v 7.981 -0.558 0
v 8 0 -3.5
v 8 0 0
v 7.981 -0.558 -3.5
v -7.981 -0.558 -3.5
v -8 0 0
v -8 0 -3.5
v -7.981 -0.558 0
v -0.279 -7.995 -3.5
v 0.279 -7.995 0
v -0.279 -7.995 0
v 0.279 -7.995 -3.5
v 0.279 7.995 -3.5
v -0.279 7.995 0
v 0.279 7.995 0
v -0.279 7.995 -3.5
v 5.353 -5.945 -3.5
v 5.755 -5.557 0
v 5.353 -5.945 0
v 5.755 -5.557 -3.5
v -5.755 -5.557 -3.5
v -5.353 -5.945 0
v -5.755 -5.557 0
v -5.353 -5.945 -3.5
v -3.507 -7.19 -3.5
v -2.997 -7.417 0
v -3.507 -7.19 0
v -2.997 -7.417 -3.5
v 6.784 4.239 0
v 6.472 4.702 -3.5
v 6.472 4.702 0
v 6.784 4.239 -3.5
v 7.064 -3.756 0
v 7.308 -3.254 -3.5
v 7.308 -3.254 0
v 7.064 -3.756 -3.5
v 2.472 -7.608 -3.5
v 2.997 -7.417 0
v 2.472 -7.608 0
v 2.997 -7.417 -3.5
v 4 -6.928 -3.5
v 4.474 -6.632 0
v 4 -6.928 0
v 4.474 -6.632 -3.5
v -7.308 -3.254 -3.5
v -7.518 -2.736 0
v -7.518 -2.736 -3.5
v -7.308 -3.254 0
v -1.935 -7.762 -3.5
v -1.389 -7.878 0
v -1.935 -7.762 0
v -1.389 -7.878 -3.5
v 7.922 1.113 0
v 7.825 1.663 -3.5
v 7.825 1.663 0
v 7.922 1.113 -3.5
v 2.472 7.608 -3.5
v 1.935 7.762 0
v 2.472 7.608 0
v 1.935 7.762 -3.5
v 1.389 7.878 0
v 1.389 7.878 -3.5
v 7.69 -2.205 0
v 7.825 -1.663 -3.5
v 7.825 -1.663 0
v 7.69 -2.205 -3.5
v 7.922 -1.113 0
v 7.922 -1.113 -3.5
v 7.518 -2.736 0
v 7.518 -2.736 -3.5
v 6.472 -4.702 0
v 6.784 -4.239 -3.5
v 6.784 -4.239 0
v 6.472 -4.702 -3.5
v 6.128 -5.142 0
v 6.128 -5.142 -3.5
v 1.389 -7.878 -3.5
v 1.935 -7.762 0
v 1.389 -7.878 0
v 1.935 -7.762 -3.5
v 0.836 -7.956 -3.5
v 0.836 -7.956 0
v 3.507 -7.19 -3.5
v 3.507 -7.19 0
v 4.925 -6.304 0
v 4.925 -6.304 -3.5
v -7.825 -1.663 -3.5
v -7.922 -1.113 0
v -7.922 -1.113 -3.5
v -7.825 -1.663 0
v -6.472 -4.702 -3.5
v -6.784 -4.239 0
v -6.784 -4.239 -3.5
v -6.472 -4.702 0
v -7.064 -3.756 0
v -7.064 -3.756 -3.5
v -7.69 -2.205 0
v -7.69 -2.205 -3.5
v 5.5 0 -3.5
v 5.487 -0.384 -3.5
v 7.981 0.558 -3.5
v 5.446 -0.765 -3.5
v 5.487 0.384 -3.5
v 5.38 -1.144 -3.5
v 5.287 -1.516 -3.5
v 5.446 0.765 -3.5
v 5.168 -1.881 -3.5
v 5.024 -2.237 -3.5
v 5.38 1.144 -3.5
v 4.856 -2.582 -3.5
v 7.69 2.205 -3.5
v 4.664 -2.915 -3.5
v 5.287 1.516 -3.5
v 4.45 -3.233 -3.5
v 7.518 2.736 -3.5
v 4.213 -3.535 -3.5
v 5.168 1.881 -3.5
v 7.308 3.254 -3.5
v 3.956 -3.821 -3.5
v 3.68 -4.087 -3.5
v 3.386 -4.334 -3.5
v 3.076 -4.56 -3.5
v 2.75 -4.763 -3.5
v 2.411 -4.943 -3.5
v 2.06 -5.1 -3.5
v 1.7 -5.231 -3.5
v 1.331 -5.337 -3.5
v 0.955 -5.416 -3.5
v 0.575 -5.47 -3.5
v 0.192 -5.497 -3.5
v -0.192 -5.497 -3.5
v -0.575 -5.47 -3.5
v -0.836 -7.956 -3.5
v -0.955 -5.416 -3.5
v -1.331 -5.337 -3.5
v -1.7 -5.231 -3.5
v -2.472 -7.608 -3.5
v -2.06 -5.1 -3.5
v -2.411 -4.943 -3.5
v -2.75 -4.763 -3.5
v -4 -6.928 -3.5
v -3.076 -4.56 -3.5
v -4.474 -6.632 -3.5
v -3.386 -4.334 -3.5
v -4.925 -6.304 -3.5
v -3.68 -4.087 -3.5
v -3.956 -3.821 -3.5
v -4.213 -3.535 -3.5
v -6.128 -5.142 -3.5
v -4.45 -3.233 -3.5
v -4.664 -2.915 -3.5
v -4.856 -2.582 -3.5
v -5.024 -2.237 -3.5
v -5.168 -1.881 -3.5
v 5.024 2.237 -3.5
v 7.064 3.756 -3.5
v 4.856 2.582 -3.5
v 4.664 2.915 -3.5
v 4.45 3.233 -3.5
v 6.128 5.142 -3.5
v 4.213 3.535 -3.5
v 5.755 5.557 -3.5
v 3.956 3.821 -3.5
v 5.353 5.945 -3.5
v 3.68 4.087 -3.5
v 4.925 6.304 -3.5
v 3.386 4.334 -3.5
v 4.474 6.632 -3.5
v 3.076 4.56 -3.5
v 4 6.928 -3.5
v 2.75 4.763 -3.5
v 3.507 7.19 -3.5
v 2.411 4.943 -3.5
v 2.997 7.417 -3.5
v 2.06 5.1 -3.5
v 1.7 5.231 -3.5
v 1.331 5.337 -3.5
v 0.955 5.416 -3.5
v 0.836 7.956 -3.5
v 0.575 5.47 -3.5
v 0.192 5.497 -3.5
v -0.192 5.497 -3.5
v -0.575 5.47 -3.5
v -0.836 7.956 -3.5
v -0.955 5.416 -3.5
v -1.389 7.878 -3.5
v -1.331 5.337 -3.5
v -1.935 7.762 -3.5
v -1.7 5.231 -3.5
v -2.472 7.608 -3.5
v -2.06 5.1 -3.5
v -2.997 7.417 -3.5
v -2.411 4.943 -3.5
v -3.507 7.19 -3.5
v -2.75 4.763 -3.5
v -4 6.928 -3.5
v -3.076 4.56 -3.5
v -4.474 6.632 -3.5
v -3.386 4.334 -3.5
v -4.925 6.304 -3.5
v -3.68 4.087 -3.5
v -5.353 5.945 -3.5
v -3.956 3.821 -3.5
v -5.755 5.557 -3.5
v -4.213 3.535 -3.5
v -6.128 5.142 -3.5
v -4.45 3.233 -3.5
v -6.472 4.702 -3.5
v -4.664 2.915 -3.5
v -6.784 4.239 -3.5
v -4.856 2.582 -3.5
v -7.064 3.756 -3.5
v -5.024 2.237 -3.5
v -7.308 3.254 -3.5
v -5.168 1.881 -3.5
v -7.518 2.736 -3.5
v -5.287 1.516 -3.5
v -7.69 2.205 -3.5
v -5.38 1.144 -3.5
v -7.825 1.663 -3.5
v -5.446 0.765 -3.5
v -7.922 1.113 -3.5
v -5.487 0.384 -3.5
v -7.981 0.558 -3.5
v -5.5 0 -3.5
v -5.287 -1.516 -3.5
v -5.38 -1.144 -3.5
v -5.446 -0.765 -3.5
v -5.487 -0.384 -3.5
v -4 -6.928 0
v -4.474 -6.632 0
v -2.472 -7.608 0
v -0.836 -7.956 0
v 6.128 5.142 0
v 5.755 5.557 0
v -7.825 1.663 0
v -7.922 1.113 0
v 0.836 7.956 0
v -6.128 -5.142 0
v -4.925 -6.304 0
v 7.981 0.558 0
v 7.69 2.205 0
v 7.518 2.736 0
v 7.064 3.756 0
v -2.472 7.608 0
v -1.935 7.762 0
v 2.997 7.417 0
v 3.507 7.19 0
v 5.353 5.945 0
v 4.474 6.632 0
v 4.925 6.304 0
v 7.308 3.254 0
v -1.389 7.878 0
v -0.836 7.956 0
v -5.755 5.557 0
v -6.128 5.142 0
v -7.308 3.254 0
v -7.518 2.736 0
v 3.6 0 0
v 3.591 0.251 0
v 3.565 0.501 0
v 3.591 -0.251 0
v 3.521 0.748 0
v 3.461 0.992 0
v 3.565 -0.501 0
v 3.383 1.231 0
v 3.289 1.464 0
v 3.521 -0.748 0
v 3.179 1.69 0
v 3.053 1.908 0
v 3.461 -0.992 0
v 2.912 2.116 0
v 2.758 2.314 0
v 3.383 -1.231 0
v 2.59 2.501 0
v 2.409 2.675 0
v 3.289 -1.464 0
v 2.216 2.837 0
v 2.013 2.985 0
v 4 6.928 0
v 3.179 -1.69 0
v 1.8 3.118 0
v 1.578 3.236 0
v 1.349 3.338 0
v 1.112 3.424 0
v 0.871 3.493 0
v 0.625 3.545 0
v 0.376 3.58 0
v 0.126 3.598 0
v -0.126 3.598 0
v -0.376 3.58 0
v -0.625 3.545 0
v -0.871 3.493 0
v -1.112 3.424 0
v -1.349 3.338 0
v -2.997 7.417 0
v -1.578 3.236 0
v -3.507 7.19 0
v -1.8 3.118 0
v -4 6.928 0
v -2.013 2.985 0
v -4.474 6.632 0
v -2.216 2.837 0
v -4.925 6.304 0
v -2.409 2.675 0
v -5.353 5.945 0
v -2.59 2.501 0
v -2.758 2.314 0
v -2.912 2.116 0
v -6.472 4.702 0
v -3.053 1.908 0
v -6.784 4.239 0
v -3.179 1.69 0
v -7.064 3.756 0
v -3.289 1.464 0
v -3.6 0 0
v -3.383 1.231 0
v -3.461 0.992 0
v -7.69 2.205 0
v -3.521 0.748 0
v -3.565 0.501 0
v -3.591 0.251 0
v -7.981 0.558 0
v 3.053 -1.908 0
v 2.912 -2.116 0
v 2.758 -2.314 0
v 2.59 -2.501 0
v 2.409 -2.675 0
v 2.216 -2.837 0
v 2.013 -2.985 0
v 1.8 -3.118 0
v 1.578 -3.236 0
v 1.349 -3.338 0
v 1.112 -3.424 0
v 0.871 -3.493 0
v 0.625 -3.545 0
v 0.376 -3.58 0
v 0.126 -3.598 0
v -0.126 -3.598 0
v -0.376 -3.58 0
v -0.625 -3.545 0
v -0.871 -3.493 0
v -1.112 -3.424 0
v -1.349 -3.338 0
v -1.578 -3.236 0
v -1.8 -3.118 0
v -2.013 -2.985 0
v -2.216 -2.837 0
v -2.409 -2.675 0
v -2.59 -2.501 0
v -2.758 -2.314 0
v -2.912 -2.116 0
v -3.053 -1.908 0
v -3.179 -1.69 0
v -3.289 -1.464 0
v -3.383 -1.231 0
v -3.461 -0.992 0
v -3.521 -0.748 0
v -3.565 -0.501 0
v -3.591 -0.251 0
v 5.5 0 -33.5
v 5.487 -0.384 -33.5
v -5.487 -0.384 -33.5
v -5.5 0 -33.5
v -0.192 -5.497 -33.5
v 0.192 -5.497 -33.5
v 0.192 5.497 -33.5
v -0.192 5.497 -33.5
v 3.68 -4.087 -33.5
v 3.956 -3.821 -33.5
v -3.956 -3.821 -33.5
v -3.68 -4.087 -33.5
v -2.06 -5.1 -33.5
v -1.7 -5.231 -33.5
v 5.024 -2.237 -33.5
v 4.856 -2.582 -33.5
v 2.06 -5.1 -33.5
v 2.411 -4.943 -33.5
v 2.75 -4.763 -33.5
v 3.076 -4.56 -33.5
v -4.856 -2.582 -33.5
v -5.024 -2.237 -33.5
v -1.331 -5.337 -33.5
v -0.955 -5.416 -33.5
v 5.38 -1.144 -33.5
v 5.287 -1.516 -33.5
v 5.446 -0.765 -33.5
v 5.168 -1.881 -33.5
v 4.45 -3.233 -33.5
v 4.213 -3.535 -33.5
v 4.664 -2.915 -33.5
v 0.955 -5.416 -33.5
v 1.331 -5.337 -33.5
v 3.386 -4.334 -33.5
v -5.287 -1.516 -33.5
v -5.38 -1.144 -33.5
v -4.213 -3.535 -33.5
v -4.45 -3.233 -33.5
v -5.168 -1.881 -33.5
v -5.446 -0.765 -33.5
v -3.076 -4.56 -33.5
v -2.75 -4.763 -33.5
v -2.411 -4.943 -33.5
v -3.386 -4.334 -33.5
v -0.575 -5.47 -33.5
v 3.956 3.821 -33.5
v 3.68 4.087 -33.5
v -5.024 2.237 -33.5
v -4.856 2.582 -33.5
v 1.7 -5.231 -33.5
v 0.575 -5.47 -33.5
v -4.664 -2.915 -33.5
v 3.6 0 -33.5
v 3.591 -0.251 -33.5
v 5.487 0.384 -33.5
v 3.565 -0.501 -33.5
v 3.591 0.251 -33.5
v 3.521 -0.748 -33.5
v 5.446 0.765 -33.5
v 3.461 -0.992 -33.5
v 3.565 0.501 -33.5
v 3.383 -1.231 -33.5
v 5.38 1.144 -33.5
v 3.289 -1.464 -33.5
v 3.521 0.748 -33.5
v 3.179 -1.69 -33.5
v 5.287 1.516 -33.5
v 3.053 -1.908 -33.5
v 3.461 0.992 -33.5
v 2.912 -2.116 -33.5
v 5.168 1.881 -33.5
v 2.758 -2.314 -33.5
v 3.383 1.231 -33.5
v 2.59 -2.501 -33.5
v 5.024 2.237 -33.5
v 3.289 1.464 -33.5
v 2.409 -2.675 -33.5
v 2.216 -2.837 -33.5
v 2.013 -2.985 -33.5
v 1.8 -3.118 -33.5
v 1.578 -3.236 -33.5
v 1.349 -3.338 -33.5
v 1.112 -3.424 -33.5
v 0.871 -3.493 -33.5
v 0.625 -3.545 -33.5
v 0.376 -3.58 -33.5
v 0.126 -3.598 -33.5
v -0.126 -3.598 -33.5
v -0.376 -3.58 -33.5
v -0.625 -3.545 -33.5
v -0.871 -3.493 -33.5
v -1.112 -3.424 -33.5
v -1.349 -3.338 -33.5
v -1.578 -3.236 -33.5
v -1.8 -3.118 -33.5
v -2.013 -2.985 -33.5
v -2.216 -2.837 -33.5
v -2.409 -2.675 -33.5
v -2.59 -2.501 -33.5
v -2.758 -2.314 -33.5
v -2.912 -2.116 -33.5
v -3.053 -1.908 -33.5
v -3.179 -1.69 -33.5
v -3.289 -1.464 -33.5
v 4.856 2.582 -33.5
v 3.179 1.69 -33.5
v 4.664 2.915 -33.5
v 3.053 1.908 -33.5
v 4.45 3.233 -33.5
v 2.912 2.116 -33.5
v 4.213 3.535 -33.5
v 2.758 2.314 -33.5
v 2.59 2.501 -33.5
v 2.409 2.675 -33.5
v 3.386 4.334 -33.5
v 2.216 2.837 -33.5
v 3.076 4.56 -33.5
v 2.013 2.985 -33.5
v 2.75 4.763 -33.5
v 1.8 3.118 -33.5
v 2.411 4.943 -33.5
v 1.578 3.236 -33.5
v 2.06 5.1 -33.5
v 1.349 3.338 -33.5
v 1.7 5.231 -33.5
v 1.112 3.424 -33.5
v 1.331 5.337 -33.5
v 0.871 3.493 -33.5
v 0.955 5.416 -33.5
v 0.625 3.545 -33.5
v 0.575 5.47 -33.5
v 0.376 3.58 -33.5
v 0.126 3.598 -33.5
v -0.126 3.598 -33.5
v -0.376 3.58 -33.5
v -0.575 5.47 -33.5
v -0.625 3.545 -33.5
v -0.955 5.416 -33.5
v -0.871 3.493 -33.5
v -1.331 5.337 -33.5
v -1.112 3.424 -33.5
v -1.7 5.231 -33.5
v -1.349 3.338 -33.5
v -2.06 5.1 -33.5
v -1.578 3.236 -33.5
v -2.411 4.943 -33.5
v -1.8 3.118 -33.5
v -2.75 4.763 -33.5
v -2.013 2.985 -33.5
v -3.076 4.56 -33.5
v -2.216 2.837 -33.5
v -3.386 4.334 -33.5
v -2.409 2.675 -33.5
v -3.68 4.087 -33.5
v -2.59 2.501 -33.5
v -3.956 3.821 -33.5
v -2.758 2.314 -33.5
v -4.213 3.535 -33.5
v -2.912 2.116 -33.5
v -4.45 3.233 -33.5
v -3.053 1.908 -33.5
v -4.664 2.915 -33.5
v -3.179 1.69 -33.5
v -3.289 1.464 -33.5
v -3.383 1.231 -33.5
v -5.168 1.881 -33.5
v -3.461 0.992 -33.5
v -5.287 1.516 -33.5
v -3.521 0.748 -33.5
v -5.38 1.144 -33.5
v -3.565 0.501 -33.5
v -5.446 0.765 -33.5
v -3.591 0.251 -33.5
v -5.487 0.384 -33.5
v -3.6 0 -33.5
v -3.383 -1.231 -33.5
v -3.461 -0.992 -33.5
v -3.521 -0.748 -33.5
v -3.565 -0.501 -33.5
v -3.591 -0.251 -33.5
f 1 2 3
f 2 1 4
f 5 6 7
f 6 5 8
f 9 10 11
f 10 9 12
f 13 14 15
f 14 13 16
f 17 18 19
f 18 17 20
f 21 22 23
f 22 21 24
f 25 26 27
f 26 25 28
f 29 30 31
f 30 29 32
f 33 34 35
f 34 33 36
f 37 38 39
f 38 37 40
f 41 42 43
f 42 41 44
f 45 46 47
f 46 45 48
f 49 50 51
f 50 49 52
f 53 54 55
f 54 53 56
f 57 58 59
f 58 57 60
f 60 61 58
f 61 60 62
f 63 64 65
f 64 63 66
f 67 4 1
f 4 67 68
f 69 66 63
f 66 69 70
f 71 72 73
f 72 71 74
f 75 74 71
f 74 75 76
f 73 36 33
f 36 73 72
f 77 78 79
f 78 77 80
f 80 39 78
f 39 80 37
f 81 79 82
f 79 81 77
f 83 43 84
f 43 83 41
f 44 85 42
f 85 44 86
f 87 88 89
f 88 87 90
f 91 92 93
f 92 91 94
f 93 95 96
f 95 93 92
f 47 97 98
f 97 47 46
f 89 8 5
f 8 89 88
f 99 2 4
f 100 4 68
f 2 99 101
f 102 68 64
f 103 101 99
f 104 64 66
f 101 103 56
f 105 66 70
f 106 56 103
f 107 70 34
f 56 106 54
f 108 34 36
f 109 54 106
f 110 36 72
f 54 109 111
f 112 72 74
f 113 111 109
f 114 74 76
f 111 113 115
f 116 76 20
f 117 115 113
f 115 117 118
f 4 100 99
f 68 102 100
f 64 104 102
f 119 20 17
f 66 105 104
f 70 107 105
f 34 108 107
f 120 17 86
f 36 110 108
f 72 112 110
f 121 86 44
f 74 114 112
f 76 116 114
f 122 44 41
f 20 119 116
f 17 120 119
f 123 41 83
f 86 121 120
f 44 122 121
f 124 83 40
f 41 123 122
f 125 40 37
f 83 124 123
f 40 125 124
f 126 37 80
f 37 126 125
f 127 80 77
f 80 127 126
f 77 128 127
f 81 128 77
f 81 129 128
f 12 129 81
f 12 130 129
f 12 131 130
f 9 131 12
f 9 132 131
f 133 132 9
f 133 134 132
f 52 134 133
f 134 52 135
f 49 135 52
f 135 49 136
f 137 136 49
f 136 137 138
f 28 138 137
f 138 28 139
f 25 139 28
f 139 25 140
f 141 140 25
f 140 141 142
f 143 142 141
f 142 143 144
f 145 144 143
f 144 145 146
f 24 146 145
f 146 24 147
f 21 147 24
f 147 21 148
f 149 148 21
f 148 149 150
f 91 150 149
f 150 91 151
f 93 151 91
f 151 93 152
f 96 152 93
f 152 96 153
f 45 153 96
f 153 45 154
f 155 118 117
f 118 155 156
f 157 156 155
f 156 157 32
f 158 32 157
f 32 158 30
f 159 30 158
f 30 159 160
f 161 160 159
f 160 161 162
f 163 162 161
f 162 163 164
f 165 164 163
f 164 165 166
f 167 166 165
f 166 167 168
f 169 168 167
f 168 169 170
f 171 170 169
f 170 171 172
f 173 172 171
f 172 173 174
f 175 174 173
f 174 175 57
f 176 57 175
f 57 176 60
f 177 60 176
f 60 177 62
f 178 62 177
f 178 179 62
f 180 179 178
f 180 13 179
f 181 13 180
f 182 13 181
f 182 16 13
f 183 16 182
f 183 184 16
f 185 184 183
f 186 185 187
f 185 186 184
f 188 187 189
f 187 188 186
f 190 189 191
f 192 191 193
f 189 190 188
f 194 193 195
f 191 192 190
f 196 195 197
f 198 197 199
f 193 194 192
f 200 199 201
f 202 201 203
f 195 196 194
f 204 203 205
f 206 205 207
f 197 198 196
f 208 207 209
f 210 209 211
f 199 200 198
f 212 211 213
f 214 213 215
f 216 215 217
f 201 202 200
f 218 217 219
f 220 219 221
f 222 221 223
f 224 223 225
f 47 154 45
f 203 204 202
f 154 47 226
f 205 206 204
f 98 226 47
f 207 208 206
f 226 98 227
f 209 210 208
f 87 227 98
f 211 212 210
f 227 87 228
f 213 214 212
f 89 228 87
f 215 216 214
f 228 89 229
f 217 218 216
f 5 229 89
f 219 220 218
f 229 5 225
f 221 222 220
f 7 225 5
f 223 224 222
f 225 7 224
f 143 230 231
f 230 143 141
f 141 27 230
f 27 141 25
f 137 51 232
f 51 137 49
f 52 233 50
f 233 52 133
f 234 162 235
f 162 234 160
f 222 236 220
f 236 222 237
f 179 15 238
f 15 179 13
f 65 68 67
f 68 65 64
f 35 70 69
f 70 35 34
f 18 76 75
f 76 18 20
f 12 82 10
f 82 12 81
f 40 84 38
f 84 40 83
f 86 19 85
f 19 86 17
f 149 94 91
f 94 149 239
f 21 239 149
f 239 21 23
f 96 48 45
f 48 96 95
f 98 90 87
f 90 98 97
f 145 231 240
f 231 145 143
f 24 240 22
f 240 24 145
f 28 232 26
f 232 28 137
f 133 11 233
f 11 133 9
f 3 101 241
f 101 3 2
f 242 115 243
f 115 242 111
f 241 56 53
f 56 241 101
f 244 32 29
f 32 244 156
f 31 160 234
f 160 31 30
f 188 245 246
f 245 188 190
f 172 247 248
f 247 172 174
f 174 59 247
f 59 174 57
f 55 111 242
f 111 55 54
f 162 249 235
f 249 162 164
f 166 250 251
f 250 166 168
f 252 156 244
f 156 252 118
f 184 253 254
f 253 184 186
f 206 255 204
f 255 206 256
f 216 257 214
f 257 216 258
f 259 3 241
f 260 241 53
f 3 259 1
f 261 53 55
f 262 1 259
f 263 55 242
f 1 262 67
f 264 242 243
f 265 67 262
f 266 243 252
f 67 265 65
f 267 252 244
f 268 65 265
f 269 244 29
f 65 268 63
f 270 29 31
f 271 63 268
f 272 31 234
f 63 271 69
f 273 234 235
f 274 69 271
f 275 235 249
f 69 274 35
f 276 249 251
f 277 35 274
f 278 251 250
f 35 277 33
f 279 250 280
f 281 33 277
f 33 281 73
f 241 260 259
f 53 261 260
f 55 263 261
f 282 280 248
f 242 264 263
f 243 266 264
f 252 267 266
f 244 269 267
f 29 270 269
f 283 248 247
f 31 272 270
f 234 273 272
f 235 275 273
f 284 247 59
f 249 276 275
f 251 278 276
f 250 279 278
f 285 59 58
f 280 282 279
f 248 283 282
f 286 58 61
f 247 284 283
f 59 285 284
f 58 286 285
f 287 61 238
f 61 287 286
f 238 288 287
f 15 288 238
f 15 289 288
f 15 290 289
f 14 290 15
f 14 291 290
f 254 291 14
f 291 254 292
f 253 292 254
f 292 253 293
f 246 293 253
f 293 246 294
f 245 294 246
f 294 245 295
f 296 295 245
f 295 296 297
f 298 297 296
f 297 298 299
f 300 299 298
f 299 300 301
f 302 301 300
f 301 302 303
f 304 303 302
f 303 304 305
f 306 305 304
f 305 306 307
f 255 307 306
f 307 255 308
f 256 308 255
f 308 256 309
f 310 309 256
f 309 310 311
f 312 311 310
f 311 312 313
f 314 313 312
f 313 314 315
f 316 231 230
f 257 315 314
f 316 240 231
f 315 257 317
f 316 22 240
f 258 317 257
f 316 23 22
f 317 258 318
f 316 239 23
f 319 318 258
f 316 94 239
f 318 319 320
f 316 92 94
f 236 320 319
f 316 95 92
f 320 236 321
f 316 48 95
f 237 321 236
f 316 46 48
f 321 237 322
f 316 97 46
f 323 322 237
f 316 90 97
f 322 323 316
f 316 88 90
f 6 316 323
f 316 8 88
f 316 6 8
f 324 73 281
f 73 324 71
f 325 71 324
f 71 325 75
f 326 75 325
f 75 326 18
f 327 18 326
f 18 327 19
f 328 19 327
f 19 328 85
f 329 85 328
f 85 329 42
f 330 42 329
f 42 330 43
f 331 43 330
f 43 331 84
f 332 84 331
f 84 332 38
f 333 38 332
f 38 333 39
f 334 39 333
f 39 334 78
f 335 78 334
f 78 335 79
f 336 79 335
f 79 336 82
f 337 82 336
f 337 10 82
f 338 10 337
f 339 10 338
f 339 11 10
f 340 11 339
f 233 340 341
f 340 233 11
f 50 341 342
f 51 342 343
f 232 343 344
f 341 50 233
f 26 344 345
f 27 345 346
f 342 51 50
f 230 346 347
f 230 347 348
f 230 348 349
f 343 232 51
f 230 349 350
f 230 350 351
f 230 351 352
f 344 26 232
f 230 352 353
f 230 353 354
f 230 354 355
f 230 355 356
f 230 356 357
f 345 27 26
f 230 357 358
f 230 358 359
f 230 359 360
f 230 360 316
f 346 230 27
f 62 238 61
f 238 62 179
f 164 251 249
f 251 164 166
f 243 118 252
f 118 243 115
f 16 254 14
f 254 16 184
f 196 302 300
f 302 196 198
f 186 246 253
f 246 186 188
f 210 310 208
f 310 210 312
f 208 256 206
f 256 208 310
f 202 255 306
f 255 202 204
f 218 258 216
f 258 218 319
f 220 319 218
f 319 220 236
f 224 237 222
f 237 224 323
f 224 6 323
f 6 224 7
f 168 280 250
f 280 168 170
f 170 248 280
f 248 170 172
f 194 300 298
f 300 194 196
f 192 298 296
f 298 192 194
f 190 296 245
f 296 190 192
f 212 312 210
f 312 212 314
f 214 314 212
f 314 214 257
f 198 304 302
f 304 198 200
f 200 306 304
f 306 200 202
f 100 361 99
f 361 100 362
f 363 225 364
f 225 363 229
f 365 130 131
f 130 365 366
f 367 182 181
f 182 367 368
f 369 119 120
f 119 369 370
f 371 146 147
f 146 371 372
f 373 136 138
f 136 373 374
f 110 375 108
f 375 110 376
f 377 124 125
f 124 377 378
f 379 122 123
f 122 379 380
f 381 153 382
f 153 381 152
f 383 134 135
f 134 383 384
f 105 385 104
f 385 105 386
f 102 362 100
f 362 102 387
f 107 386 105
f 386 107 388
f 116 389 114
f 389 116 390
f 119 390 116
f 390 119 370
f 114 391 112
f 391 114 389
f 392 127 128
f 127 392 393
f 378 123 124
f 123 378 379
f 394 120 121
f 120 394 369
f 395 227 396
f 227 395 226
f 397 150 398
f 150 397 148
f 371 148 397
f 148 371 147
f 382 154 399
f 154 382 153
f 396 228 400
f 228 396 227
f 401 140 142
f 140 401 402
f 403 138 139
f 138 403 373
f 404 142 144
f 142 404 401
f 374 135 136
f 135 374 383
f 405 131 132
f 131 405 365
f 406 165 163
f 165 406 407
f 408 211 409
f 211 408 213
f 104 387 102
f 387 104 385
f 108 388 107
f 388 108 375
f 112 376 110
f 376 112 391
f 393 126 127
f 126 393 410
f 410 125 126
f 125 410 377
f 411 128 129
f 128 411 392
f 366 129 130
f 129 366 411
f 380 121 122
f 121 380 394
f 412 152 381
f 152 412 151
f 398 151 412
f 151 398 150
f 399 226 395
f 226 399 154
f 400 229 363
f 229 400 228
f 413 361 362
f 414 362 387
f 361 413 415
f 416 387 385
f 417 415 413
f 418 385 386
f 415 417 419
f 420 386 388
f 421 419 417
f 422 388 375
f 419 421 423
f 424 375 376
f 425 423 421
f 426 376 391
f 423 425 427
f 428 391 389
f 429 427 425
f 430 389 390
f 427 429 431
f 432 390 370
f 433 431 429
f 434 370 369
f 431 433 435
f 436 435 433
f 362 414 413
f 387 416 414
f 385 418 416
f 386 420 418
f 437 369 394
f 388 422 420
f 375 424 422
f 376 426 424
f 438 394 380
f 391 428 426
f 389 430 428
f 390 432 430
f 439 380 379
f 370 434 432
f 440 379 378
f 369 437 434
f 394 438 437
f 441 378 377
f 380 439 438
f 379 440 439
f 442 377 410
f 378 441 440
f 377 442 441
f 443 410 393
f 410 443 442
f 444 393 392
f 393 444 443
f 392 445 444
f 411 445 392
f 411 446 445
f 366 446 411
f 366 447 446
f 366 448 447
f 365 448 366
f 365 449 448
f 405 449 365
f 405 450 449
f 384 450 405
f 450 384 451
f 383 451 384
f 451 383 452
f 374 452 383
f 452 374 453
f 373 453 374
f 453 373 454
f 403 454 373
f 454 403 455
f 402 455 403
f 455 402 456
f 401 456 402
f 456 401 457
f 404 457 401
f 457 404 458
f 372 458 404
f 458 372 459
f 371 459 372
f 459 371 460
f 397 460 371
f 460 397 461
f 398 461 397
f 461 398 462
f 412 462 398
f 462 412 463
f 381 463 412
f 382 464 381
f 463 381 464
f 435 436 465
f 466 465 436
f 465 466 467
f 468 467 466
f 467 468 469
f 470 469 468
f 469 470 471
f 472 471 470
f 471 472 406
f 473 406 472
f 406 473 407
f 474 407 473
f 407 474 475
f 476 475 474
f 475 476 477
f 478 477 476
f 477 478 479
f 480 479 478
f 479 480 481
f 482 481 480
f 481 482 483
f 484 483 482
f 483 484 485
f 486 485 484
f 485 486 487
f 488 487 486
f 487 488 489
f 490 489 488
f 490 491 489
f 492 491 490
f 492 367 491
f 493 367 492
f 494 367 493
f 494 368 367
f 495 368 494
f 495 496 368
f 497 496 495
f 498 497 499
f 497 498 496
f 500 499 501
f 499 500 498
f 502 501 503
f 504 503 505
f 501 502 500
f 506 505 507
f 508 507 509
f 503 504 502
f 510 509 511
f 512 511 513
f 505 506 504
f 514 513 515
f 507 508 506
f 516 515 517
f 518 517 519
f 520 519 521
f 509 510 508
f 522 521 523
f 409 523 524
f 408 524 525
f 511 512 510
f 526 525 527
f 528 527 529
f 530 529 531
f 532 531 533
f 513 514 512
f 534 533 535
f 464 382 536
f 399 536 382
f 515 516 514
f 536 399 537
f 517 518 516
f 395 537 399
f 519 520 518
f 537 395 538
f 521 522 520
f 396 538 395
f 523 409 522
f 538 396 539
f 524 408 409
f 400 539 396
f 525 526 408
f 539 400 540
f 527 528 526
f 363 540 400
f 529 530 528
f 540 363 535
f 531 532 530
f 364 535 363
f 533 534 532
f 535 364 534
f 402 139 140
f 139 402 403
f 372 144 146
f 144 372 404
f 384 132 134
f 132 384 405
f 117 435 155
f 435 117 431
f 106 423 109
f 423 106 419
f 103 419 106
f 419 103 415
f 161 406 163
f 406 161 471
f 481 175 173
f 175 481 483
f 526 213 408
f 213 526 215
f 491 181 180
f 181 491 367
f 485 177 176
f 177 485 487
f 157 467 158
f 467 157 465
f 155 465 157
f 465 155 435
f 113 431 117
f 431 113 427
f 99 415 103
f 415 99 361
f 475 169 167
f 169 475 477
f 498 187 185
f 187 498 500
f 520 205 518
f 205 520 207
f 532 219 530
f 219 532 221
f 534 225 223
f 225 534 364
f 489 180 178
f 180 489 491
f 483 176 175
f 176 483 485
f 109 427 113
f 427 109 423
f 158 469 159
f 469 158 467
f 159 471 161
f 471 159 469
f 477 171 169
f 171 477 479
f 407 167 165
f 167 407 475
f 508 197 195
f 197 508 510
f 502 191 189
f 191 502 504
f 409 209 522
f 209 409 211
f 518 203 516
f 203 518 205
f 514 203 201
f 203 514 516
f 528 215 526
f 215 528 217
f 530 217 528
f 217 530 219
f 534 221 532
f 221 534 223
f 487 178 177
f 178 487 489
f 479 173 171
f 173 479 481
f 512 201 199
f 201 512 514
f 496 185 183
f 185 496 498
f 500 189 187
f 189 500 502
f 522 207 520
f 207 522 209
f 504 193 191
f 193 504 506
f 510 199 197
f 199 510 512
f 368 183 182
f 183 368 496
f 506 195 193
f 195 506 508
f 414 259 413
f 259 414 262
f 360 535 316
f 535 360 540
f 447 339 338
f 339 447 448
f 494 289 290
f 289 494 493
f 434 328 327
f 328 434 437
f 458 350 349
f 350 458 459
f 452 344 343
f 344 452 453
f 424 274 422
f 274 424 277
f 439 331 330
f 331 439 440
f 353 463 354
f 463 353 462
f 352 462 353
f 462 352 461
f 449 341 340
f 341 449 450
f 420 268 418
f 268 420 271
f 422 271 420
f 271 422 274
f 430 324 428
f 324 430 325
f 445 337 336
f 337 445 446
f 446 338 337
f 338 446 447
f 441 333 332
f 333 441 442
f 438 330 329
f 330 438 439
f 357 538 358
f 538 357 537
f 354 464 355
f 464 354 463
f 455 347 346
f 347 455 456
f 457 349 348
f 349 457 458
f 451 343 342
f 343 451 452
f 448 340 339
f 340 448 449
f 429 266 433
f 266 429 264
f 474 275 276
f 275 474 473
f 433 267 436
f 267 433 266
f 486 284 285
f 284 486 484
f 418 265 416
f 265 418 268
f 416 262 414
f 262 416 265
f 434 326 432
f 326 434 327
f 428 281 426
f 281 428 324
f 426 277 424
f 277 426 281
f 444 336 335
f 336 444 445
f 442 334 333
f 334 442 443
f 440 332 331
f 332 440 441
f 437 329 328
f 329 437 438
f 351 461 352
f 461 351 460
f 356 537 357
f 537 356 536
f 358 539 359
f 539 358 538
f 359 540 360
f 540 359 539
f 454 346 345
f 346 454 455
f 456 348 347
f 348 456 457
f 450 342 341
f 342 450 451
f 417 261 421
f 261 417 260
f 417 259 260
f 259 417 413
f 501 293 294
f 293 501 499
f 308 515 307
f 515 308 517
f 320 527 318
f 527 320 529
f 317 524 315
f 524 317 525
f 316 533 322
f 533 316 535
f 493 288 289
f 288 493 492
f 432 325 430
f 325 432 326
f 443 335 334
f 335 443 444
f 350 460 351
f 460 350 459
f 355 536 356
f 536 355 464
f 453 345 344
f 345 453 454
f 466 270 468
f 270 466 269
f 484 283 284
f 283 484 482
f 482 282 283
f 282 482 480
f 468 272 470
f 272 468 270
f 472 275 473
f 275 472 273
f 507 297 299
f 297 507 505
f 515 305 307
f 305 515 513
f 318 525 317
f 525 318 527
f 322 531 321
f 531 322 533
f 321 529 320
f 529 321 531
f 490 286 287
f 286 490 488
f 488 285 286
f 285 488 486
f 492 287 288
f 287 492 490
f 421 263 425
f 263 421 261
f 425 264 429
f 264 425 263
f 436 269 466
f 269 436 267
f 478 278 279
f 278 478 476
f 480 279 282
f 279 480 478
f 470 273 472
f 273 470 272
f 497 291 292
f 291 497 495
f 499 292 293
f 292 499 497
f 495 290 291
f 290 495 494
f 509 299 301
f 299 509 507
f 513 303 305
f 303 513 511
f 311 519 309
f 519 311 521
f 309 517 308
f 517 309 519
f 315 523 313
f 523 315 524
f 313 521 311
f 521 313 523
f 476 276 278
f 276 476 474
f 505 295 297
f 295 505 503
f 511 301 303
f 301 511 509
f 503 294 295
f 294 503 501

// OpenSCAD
/*
Copyright 2019 Phil Showers

Permission is hereby granted, free of charge, to any person obtaining a copy of this software and associated documentation files (the "Software"), to deal in the Software without restriction, including without limitation the rights to use, copy, modify, merge, publish, distribute, sublicense, and/or sell copies of the Software, and to permit persons to whom the Software is furnished to do so, subject to the following conditions:

The above copyright notice and this permission notice shall be included in all copies or substantial portions of the Software.

THE SOFTWARE IS PROVIDED "AS IS", WITHOUT WARRANTY OF ANY KIND, EXPRESS OR IMPLIED, INCLUDING BUT NOT LIMITED TO THE WARRANTIES OF MERCHANTABILITY, FITNESS FOR A PARTICULAR PURPOSE AND NONINFRINGEMENT. IN NO EVENT SHALL THE AUTHORS OR COPYRIGHT HOLDERS BE LIABLE FOR ANY CLAIM, DAMAGES OR OTHER LIABILITY, WHETHER IN AN ACTION OF CONTRACT, TORT OR OTHERWISE, ARISING FROM, OUT OF OR IN CONNECTION WITH THE SOFTWARE OR THE USE OR OTHER DEALINGS IN THE SOFTWARE.

https://opensource.org/licenses/MIT
*/

$fn=90;


mountHoleDiameter = 12;
mountThickness = 3.5;
sensorDiameter = 7.2;
sensorLength = 30;
adapterDiameter = 11;

module model()
{
    mount();
    adapter();
}

module mount()
{
    // mount plate
    difference(){
        translate([-15,-15,0])cube([30, 30, mountThickness]);
        cylinder(d = mountHoleDiameter, h = mountThickness+.1);
    }
} 

// this is the thing to print...
module adapter()
{
    difference(){
        union(){
            translate([0,0,-mountThickness])cylinder(d = mountHoleDiameter + 4, h = mountThickness);
            translate([0,0,0])cylinder(d = adapterDiameter, h = sensorLength);
        }
        //sensor hole
        translate([0,0,-mountThickness])cylinder(d = sensorDiameter, h = sensorLength+mountThickness);
    }
}

//model();

rotate([180,0,0])translate([0,0,mountThickness])adapter();
